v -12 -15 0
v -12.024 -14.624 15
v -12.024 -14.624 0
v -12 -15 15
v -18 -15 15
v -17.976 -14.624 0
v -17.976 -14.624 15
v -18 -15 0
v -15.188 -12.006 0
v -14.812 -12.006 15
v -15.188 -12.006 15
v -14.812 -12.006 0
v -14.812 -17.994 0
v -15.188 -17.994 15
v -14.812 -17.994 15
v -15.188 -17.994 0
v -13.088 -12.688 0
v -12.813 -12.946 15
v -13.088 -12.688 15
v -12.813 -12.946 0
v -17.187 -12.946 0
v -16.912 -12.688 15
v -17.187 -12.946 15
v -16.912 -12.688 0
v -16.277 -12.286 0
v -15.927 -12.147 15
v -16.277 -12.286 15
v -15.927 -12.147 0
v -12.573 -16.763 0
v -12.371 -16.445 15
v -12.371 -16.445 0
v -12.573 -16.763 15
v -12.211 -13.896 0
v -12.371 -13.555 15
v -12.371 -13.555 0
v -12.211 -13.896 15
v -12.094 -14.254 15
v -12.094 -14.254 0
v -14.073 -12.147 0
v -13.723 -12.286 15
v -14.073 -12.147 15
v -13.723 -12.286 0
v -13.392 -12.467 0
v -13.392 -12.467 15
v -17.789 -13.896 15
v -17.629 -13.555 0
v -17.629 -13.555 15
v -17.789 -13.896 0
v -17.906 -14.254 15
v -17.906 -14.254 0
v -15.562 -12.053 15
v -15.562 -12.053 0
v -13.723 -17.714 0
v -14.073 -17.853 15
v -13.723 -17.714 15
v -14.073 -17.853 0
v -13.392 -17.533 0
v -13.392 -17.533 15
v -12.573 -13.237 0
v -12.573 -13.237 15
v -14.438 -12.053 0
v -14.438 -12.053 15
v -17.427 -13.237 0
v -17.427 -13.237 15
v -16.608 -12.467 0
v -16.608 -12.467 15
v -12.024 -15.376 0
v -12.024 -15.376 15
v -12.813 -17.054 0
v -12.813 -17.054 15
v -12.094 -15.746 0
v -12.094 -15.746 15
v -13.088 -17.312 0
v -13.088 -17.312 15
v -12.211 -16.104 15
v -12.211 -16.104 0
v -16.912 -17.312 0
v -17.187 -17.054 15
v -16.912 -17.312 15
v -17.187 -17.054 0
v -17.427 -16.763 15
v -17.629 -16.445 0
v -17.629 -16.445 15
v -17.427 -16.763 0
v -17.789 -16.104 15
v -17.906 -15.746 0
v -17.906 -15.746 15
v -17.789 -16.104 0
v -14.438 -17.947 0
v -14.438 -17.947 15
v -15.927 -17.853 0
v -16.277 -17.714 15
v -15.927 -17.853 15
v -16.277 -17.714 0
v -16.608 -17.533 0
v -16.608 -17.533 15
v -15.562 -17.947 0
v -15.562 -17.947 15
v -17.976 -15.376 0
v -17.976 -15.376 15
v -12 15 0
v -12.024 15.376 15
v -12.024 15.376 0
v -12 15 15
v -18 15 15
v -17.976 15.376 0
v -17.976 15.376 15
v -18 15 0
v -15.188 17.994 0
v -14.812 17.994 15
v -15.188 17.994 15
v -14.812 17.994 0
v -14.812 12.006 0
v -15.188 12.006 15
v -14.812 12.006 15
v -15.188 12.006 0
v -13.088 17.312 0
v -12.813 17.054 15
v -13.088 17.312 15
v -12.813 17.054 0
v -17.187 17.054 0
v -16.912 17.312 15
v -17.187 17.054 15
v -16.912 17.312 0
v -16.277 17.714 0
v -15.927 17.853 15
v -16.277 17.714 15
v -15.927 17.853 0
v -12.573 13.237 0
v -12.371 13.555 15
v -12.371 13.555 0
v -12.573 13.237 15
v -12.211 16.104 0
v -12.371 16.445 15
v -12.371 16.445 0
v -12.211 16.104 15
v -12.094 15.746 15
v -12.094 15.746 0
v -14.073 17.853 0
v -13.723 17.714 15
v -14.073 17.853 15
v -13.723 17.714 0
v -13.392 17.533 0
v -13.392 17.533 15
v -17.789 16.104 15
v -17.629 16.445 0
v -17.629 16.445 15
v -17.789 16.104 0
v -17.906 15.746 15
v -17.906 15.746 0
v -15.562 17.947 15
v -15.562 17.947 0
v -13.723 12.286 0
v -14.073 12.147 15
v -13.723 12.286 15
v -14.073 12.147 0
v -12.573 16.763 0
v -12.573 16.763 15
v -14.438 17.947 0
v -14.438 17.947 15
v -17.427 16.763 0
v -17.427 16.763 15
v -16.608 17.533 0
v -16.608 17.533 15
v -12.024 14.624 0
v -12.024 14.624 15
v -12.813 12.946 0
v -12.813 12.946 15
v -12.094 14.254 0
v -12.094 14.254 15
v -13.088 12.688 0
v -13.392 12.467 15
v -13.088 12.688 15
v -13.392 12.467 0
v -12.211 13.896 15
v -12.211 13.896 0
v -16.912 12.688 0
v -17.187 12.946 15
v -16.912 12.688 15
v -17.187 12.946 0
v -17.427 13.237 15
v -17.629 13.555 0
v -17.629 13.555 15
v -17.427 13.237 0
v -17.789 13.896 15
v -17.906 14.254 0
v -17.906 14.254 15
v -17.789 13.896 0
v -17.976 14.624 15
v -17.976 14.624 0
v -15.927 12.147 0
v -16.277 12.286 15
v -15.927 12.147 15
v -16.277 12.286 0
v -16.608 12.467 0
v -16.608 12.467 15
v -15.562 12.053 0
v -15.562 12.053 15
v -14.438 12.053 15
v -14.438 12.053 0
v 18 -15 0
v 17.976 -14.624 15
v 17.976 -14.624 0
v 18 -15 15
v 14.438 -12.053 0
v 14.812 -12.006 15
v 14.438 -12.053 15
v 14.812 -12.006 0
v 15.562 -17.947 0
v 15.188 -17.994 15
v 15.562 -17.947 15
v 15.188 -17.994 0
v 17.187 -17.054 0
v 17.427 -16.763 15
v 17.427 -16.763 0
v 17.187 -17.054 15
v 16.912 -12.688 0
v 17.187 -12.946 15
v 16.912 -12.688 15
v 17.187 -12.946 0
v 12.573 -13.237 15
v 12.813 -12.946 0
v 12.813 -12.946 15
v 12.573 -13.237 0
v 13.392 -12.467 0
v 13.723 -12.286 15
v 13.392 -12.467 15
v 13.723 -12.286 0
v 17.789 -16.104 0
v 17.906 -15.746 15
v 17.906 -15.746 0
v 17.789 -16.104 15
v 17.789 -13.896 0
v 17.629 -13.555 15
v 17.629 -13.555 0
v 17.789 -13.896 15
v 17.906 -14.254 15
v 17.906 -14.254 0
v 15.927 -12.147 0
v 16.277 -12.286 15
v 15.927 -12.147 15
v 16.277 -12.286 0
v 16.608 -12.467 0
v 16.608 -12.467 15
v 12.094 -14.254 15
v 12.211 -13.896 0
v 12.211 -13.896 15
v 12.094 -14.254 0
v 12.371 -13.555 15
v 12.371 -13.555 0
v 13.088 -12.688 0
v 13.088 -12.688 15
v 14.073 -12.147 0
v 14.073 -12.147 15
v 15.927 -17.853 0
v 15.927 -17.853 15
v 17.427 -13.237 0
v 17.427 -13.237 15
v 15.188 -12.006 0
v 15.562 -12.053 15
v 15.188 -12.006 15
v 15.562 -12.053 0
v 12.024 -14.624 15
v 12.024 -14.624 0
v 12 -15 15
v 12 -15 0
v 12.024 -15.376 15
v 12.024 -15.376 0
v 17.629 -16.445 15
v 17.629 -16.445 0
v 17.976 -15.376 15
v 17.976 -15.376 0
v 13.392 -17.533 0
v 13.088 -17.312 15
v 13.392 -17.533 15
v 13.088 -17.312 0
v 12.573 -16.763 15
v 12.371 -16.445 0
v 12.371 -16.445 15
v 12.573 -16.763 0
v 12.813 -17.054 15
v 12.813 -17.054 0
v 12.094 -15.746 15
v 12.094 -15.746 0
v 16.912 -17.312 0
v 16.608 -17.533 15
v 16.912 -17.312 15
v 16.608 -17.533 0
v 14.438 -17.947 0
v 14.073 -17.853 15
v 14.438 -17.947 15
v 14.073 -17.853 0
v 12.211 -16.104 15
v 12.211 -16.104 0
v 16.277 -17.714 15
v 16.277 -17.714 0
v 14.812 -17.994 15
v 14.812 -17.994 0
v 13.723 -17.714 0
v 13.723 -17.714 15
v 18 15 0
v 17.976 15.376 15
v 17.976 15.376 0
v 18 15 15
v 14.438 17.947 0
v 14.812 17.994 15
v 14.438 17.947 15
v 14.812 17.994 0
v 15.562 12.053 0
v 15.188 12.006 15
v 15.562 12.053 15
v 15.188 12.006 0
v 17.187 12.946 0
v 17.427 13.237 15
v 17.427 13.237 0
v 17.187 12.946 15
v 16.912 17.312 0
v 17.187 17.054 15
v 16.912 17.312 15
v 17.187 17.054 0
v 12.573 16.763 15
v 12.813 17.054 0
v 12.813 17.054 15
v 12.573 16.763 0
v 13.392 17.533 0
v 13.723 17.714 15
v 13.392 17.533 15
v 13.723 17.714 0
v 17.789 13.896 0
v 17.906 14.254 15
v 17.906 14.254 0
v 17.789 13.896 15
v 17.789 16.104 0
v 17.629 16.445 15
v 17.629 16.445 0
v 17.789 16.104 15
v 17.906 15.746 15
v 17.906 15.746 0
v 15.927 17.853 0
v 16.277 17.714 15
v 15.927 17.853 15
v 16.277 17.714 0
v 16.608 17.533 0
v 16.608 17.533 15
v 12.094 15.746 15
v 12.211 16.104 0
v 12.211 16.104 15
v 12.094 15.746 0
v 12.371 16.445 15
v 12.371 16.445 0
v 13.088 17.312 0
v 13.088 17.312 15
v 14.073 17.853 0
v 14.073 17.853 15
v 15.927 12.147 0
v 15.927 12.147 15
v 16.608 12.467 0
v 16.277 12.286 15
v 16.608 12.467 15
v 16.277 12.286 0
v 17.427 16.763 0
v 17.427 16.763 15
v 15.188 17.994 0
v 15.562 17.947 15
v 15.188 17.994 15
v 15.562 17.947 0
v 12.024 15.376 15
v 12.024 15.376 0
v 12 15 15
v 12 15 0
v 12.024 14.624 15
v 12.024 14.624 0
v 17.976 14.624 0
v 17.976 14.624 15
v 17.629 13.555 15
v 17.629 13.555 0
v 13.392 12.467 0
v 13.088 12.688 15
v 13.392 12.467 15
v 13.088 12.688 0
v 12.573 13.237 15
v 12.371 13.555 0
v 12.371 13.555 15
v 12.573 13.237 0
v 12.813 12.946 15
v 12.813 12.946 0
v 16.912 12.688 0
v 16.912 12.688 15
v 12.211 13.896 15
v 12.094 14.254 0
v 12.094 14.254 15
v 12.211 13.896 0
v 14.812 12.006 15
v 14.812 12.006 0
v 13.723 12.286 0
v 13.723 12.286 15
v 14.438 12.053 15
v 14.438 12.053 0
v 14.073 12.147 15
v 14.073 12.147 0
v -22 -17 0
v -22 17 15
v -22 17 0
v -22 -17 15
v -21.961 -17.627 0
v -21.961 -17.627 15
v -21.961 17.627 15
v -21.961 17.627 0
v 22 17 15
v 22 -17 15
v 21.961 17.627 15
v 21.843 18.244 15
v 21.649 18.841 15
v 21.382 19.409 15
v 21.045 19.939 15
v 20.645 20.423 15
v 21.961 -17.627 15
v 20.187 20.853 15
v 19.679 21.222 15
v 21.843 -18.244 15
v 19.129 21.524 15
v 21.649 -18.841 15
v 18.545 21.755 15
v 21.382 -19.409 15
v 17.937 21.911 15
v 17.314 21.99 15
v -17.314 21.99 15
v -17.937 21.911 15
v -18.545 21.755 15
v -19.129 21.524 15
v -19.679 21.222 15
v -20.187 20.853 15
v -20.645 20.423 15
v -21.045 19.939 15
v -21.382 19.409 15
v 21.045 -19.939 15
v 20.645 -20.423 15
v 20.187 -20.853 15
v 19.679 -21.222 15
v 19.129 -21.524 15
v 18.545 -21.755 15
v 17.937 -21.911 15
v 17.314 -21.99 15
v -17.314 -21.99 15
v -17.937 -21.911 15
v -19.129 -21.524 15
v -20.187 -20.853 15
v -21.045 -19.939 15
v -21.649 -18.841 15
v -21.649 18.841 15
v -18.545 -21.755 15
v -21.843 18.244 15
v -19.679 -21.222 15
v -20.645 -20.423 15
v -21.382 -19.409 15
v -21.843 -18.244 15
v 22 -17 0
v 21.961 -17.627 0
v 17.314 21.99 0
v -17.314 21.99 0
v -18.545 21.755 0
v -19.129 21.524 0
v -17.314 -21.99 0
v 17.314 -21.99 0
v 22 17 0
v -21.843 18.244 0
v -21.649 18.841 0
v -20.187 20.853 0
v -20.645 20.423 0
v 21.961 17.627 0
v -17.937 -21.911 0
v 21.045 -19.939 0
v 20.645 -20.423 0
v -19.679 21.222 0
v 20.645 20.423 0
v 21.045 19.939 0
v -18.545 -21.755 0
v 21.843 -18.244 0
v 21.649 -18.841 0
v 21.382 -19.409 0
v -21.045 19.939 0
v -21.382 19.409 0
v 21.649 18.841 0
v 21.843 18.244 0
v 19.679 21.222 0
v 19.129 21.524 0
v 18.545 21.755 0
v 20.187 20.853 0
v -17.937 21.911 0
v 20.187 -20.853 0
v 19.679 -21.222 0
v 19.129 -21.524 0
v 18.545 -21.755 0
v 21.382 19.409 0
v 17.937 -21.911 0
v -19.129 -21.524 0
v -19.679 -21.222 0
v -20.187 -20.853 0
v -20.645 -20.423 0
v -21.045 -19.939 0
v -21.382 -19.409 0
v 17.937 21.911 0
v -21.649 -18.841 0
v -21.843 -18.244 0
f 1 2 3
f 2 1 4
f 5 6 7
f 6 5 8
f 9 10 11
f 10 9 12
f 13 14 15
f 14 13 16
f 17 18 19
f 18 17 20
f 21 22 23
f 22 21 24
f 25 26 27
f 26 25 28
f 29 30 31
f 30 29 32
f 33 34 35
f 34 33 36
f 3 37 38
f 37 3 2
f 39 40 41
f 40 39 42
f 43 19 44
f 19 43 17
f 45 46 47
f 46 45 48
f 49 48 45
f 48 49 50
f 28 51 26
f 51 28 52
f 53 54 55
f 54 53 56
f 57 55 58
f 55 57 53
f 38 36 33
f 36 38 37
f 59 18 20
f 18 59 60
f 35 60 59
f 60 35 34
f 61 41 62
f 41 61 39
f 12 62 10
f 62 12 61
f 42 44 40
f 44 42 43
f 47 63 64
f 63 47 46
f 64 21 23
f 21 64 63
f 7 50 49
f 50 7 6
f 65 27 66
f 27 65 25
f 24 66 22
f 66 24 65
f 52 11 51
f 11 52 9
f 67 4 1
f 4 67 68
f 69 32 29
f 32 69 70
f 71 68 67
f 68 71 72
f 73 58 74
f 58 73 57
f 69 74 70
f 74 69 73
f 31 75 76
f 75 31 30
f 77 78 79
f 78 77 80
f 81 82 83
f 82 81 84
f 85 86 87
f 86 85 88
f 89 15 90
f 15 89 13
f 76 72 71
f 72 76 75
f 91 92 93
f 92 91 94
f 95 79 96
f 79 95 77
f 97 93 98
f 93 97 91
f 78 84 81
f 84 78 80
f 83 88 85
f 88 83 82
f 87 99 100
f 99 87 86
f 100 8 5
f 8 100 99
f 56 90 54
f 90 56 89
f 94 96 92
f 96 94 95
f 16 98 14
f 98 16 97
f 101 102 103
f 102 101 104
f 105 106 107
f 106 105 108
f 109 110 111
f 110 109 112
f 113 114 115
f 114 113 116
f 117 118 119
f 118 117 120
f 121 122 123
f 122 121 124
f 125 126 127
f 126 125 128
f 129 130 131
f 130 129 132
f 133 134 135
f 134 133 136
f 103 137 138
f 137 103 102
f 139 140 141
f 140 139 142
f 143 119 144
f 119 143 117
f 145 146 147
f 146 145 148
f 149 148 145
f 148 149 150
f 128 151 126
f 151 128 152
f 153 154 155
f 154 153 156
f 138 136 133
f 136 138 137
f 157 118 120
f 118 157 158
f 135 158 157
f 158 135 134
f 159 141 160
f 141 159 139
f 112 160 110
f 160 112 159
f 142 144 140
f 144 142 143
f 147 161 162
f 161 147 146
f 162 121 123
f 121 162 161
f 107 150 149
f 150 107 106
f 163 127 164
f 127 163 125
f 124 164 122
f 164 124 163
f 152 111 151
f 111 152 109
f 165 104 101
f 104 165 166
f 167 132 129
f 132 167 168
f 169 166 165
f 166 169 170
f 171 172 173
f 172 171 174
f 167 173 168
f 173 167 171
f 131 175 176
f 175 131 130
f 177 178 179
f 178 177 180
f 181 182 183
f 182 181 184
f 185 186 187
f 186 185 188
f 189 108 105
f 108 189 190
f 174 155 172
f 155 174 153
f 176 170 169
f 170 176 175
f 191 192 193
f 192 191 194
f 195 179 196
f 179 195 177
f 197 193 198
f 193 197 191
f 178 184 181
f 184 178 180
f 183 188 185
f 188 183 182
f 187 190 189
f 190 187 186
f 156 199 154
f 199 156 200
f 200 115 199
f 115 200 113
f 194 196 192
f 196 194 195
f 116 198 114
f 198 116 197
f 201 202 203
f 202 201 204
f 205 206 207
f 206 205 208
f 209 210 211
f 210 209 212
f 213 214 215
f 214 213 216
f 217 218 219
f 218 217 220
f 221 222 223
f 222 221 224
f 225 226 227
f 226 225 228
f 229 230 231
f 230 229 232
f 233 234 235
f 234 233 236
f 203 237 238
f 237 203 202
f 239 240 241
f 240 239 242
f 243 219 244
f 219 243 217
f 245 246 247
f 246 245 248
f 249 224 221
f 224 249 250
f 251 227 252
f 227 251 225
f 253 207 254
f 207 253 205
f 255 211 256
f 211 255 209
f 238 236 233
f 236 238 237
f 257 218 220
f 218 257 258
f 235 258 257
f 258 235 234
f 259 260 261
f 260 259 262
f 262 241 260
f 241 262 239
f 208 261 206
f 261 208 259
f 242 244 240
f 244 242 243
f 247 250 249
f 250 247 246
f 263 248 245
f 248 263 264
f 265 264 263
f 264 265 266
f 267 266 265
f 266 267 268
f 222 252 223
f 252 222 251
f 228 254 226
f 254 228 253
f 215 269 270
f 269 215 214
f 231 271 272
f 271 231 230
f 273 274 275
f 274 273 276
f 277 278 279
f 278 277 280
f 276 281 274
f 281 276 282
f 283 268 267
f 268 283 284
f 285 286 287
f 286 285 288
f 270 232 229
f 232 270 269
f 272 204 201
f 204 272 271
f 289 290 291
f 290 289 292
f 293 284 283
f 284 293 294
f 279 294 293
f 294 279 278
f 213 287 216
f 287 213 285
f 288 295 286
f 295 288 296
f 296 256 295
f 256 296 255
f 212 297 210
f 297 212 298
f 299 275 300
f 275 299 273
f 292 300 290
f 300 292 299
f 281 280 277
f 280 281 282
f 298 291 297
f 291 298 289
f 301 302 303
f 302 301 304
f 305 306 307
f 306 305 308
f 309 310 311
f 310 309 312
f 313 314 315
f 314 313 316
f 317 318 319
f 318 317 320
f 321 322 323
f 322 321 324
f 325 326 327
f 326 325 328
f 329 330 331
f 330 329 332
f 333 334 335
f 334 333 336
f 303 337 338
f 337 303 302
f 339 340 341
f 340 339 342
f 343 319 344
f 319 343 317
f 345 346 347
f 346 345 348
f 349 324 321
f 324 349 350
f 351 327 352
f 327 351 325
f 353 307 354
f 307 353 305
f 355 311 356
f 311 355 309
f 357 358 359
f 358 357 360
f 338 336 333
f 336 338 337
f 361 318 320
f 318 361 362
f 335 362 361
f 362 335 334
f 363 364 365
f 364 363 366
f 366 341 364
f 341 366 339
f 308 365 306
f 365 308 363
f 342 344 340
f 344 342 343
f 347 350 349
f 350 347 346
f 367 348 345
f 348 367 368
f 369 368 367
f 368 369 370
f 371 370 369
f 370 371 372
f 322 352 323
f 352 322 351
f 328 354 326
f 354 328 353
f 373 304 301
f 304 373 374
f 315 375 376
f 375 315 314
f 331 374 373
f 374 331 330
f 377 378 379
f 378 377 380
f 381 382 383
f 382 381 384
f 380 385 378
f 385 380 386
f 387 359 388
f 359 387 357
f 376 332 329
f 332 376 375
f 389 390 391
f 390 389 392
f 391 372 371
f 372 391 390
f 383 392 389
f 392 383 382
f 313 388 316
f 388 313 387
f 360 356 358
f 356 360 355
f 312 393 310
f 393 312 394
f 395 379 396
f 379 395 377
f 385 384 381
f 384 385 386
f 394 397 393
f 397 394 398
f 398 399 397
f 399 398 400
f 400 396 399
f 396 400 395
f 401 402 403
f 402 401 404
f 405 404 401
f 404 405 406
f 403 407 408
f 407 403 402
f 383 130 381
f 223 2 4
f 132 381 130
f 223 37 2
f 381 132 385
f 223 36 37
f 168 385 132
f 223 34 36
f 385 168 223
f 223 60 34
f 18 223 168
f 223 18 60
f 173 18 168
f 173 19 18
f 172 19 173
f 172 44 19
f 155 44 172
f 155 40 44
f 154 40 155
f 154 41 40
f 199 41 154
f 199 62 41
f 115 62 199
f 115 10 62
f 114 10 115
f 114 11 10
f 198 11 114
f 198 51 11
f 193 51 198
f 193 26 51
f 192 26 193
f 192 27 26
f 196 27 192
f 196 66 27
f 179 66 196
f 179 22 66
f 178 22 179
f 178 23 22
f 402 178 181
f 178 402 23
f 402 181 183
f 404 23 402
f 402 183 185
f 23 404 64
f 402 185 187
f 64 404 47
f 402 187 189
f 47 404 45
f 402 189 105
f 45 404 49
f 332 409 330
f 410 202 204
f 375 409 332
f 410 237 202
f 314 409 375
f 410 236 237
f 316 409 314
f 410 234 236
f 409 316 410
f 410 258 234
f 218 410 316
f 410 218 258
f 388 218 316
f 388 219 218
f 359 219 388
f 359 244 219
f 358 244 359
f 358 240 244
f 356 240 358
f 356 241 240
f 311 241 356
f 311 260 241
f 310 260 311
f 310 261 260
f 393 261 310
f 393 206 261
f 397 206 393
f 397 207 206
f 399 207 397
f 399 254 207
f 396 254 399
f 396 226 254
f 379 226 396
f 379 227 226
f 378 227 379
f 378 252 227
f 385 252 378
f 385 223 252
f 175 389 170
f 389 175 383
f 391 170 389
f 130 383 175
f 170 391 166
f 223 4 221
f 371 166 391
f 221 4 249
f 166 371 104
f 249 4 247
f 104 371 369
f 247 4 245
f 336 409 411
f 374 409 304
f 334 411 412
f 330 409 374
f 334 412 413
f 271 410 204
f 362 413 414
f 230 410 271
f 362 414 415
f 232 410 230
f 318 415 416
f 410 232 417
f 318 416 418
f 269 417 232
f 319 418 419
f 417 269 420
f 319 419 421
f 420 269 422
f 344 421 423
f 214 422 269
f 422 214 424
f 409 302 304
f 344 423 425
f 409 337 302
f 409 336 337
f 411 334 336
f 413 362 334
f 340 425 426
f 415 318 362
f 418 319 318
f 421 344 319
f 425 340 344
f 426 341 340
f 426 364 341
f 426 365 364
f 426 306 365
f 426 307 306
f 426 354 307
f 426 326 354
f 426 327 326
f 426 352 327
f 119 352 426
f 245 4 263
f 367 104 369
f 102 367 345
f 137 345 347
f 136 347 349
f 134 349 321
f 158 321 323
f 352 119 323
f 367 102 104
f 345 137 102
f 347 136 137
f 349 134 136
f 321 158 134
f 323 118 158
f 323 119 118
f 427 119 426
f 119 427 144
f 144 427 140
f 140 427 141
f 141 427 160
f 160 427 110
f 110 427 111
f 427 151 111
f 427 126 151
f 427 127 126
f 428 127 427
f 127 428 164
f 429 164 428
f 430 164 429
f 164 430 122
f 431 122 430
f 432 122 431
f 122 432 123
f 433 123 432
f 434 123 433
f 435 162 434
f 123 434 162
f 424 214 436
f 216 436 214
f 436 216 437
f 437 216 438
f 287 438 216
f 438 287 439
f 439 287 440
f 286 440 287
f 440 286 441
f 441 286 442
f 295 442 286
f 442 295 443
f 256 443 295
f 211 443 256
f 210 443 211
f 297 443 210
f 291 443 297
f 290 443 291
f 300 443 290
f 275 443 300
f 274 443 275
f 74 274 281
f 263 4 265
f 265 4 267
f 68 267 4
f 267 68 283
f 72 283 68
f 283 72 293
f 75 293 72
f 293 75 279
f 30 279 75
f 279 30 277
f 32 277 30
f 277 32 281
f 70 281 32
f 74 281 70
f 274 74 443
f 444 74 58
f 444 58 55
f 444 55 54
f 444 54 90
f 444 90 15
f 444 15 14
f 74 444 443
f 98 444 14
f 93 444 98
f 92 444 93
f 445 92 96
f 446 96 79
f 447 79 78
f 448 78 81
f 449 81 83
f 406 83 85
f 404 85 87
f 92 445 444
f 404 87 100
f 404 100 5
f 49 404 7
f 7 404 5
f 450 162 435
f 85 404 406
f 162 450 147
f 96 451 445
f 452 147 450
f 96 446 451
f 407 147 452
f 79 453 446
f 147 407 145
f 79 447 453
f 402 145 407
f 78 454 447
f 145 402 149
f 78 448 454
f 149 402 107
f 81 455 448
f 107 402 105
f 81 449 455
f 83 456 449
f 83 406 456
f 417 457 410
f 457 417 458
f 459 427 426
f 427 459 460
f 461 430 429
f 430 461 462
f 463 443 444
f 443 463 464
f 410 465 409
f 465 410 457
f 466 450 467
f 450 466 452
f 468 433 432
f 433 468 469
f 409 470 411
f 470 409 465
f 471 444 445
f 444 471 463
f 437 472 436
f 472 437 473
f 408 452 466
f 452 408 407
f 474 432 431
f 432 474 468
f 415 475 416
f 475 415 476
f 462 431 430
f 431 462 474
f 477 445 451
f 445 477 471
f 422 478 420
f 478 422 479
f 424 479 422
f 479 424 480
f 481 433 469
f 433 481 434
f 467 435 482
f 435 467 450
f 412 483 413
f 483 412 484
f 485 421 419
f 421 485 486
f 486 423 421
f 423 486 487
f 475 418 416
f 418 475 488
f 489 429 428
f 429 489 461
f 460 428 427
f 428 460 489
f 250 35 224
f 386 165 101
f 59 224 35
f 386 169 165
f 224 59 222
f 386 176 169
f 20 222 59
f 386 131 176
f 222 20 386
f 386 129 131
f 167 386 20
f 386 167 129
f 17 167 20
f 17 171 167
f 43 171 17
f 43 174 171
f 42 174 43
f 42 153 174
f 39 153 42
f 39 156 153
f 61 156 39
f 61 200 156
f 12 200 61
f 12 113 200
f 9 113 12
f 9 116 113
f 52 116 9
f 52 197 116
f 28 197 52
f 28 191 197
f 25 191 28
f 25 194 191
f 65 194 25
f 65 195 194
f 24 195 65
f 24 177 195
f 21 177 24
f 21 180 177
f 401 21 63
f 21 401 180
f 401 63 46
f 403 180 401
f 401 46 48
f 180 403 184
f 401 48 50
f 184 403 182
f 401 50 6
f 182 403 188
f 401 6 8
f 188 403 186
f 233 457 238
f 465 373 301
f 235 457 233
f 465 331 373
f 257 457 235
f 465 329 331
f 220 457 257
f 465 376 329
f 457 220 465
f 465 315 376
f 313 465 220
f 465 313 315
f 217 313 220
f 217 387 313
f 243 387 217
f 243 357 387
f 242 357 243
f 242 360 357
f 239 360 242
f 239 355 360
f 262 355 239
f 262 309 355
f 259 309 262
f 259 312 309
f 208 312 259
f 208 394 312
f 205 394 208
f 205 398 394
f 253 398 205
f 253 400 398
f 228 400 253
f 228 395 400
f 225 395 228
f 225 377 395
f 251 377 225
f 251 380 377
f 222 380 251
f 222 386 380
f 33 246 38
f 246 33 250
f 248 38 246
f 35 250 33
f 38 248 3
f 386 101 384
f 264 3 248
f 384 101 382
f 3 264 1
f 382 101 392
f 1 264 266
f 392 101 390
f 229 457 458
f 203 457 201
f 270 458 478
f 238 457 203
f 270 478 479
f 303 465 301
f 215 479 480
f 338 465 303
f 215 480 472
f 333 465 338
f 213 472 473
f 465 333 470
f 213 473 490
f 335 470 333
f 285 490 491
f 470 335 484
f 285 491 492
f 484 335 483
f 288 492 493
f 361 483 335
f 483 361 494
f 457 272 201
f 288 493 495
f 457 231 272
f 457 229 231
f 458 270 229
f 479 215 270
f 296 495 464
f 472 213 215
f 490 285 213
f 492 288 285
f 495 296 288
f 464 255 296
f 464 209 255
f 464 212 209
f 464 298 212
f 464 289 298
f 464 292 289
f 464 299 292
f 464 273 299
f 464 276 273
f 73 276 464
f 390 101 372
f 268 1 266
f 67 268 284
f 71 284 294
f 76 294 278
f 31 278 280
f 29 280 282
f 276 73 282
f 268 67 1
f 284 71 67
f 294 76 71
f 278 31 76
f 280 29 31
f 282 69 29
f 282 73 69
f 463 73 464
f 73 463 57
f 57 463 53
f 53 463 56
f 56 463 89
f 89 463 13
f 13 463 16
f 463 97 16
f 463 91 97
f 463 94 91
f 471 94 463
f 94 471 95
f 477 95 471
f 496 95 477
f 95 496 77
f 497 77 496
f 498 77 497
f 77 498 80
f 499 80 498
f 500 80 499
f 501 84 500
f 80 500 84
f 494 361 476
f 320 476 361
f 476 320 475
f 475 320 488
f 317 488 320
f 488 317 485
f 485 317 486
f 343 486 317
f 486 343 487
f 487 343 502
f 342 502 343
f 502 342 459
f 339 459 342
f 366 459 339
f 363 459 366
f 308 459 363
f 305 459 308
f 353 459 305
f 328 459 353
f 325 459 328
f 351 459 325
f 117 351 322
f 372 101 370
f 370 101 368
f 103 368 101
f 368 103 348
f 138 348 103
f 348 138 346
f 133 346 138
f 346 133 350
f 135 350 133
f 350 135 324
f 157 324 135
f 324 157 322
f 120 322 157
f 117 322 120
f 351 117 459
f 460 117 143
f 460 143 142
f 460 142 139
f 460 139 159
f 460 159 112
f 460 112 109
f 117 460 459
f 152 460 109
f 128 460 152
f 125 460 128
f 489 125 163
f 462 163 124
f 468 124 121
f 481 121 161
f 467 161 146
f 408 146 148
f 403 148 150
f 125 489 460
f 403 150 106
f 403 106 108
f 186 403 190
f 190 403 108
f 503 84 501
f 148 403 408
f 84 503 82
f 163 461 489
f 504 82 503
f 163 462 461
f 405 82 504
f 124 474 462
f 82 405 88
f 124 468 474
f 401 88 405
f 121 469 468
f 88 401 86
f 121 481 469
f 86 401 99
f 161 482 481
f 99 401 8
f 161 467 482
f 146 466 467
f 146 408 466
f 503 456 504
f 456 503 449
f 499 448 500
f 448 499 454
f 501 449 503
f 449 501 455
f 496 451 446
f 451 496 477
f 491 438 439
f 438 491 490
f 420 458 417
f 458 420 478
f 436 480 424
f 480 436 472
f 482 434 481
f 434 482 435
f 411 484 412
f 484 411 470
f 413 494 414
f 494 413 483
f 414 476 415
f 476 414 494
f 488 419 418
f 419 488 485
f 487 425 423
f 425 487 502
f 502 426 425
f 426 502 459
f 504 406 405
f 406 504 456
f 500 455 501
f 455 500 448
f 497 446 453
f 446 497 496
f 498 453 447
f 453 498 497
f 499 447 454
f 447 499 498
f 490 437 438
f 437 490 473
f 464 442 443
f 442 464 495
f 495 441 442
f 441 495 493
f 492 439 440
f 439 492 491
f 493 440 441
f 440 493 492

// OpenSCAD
$fn = 50;


difference() {
	union() {
		hull() {
			translate(v = [-17.0000000000, 17.0000000000, 0]) {
				cylinder(h = 15, r = 5);
			}
			translate(v = [17.0000000000, 17.0000000000, 0]) {
				cylinder(h = 15, r = 5);
			}
			translate(v = [-17.0000000000, -17.0000000000, 0]) {
				cylinder(h = 15, r = 5);
			}
			translate(v = [17.0000000000, -17.0000000000, 0]) {
				cylinder(h = 15, r = 5);
			}
		}
	}
	union() {
		translate(v = [-15.0000000000, -15.0000000000, -100.0000000000]) {
			cylinder(h = 200, r = 3.0000000000);
		}
		translate(v = [-15.0000000000, 15.0000000000, -100.0000000000]) {
			cylinder(h = 200, r = 3.0000000000);
		}
		translate(v = [15.0000000000, -15.0000000000, -100.0000000000]) {
			cylinder(h = 200, r = 3.0000000000);
		}
		translate(v = [15.0000000000, 15.0000000000, -100.0000000000]) {
			cylinder(h = 200, r = 3.0000000000);
		}
	}
}
